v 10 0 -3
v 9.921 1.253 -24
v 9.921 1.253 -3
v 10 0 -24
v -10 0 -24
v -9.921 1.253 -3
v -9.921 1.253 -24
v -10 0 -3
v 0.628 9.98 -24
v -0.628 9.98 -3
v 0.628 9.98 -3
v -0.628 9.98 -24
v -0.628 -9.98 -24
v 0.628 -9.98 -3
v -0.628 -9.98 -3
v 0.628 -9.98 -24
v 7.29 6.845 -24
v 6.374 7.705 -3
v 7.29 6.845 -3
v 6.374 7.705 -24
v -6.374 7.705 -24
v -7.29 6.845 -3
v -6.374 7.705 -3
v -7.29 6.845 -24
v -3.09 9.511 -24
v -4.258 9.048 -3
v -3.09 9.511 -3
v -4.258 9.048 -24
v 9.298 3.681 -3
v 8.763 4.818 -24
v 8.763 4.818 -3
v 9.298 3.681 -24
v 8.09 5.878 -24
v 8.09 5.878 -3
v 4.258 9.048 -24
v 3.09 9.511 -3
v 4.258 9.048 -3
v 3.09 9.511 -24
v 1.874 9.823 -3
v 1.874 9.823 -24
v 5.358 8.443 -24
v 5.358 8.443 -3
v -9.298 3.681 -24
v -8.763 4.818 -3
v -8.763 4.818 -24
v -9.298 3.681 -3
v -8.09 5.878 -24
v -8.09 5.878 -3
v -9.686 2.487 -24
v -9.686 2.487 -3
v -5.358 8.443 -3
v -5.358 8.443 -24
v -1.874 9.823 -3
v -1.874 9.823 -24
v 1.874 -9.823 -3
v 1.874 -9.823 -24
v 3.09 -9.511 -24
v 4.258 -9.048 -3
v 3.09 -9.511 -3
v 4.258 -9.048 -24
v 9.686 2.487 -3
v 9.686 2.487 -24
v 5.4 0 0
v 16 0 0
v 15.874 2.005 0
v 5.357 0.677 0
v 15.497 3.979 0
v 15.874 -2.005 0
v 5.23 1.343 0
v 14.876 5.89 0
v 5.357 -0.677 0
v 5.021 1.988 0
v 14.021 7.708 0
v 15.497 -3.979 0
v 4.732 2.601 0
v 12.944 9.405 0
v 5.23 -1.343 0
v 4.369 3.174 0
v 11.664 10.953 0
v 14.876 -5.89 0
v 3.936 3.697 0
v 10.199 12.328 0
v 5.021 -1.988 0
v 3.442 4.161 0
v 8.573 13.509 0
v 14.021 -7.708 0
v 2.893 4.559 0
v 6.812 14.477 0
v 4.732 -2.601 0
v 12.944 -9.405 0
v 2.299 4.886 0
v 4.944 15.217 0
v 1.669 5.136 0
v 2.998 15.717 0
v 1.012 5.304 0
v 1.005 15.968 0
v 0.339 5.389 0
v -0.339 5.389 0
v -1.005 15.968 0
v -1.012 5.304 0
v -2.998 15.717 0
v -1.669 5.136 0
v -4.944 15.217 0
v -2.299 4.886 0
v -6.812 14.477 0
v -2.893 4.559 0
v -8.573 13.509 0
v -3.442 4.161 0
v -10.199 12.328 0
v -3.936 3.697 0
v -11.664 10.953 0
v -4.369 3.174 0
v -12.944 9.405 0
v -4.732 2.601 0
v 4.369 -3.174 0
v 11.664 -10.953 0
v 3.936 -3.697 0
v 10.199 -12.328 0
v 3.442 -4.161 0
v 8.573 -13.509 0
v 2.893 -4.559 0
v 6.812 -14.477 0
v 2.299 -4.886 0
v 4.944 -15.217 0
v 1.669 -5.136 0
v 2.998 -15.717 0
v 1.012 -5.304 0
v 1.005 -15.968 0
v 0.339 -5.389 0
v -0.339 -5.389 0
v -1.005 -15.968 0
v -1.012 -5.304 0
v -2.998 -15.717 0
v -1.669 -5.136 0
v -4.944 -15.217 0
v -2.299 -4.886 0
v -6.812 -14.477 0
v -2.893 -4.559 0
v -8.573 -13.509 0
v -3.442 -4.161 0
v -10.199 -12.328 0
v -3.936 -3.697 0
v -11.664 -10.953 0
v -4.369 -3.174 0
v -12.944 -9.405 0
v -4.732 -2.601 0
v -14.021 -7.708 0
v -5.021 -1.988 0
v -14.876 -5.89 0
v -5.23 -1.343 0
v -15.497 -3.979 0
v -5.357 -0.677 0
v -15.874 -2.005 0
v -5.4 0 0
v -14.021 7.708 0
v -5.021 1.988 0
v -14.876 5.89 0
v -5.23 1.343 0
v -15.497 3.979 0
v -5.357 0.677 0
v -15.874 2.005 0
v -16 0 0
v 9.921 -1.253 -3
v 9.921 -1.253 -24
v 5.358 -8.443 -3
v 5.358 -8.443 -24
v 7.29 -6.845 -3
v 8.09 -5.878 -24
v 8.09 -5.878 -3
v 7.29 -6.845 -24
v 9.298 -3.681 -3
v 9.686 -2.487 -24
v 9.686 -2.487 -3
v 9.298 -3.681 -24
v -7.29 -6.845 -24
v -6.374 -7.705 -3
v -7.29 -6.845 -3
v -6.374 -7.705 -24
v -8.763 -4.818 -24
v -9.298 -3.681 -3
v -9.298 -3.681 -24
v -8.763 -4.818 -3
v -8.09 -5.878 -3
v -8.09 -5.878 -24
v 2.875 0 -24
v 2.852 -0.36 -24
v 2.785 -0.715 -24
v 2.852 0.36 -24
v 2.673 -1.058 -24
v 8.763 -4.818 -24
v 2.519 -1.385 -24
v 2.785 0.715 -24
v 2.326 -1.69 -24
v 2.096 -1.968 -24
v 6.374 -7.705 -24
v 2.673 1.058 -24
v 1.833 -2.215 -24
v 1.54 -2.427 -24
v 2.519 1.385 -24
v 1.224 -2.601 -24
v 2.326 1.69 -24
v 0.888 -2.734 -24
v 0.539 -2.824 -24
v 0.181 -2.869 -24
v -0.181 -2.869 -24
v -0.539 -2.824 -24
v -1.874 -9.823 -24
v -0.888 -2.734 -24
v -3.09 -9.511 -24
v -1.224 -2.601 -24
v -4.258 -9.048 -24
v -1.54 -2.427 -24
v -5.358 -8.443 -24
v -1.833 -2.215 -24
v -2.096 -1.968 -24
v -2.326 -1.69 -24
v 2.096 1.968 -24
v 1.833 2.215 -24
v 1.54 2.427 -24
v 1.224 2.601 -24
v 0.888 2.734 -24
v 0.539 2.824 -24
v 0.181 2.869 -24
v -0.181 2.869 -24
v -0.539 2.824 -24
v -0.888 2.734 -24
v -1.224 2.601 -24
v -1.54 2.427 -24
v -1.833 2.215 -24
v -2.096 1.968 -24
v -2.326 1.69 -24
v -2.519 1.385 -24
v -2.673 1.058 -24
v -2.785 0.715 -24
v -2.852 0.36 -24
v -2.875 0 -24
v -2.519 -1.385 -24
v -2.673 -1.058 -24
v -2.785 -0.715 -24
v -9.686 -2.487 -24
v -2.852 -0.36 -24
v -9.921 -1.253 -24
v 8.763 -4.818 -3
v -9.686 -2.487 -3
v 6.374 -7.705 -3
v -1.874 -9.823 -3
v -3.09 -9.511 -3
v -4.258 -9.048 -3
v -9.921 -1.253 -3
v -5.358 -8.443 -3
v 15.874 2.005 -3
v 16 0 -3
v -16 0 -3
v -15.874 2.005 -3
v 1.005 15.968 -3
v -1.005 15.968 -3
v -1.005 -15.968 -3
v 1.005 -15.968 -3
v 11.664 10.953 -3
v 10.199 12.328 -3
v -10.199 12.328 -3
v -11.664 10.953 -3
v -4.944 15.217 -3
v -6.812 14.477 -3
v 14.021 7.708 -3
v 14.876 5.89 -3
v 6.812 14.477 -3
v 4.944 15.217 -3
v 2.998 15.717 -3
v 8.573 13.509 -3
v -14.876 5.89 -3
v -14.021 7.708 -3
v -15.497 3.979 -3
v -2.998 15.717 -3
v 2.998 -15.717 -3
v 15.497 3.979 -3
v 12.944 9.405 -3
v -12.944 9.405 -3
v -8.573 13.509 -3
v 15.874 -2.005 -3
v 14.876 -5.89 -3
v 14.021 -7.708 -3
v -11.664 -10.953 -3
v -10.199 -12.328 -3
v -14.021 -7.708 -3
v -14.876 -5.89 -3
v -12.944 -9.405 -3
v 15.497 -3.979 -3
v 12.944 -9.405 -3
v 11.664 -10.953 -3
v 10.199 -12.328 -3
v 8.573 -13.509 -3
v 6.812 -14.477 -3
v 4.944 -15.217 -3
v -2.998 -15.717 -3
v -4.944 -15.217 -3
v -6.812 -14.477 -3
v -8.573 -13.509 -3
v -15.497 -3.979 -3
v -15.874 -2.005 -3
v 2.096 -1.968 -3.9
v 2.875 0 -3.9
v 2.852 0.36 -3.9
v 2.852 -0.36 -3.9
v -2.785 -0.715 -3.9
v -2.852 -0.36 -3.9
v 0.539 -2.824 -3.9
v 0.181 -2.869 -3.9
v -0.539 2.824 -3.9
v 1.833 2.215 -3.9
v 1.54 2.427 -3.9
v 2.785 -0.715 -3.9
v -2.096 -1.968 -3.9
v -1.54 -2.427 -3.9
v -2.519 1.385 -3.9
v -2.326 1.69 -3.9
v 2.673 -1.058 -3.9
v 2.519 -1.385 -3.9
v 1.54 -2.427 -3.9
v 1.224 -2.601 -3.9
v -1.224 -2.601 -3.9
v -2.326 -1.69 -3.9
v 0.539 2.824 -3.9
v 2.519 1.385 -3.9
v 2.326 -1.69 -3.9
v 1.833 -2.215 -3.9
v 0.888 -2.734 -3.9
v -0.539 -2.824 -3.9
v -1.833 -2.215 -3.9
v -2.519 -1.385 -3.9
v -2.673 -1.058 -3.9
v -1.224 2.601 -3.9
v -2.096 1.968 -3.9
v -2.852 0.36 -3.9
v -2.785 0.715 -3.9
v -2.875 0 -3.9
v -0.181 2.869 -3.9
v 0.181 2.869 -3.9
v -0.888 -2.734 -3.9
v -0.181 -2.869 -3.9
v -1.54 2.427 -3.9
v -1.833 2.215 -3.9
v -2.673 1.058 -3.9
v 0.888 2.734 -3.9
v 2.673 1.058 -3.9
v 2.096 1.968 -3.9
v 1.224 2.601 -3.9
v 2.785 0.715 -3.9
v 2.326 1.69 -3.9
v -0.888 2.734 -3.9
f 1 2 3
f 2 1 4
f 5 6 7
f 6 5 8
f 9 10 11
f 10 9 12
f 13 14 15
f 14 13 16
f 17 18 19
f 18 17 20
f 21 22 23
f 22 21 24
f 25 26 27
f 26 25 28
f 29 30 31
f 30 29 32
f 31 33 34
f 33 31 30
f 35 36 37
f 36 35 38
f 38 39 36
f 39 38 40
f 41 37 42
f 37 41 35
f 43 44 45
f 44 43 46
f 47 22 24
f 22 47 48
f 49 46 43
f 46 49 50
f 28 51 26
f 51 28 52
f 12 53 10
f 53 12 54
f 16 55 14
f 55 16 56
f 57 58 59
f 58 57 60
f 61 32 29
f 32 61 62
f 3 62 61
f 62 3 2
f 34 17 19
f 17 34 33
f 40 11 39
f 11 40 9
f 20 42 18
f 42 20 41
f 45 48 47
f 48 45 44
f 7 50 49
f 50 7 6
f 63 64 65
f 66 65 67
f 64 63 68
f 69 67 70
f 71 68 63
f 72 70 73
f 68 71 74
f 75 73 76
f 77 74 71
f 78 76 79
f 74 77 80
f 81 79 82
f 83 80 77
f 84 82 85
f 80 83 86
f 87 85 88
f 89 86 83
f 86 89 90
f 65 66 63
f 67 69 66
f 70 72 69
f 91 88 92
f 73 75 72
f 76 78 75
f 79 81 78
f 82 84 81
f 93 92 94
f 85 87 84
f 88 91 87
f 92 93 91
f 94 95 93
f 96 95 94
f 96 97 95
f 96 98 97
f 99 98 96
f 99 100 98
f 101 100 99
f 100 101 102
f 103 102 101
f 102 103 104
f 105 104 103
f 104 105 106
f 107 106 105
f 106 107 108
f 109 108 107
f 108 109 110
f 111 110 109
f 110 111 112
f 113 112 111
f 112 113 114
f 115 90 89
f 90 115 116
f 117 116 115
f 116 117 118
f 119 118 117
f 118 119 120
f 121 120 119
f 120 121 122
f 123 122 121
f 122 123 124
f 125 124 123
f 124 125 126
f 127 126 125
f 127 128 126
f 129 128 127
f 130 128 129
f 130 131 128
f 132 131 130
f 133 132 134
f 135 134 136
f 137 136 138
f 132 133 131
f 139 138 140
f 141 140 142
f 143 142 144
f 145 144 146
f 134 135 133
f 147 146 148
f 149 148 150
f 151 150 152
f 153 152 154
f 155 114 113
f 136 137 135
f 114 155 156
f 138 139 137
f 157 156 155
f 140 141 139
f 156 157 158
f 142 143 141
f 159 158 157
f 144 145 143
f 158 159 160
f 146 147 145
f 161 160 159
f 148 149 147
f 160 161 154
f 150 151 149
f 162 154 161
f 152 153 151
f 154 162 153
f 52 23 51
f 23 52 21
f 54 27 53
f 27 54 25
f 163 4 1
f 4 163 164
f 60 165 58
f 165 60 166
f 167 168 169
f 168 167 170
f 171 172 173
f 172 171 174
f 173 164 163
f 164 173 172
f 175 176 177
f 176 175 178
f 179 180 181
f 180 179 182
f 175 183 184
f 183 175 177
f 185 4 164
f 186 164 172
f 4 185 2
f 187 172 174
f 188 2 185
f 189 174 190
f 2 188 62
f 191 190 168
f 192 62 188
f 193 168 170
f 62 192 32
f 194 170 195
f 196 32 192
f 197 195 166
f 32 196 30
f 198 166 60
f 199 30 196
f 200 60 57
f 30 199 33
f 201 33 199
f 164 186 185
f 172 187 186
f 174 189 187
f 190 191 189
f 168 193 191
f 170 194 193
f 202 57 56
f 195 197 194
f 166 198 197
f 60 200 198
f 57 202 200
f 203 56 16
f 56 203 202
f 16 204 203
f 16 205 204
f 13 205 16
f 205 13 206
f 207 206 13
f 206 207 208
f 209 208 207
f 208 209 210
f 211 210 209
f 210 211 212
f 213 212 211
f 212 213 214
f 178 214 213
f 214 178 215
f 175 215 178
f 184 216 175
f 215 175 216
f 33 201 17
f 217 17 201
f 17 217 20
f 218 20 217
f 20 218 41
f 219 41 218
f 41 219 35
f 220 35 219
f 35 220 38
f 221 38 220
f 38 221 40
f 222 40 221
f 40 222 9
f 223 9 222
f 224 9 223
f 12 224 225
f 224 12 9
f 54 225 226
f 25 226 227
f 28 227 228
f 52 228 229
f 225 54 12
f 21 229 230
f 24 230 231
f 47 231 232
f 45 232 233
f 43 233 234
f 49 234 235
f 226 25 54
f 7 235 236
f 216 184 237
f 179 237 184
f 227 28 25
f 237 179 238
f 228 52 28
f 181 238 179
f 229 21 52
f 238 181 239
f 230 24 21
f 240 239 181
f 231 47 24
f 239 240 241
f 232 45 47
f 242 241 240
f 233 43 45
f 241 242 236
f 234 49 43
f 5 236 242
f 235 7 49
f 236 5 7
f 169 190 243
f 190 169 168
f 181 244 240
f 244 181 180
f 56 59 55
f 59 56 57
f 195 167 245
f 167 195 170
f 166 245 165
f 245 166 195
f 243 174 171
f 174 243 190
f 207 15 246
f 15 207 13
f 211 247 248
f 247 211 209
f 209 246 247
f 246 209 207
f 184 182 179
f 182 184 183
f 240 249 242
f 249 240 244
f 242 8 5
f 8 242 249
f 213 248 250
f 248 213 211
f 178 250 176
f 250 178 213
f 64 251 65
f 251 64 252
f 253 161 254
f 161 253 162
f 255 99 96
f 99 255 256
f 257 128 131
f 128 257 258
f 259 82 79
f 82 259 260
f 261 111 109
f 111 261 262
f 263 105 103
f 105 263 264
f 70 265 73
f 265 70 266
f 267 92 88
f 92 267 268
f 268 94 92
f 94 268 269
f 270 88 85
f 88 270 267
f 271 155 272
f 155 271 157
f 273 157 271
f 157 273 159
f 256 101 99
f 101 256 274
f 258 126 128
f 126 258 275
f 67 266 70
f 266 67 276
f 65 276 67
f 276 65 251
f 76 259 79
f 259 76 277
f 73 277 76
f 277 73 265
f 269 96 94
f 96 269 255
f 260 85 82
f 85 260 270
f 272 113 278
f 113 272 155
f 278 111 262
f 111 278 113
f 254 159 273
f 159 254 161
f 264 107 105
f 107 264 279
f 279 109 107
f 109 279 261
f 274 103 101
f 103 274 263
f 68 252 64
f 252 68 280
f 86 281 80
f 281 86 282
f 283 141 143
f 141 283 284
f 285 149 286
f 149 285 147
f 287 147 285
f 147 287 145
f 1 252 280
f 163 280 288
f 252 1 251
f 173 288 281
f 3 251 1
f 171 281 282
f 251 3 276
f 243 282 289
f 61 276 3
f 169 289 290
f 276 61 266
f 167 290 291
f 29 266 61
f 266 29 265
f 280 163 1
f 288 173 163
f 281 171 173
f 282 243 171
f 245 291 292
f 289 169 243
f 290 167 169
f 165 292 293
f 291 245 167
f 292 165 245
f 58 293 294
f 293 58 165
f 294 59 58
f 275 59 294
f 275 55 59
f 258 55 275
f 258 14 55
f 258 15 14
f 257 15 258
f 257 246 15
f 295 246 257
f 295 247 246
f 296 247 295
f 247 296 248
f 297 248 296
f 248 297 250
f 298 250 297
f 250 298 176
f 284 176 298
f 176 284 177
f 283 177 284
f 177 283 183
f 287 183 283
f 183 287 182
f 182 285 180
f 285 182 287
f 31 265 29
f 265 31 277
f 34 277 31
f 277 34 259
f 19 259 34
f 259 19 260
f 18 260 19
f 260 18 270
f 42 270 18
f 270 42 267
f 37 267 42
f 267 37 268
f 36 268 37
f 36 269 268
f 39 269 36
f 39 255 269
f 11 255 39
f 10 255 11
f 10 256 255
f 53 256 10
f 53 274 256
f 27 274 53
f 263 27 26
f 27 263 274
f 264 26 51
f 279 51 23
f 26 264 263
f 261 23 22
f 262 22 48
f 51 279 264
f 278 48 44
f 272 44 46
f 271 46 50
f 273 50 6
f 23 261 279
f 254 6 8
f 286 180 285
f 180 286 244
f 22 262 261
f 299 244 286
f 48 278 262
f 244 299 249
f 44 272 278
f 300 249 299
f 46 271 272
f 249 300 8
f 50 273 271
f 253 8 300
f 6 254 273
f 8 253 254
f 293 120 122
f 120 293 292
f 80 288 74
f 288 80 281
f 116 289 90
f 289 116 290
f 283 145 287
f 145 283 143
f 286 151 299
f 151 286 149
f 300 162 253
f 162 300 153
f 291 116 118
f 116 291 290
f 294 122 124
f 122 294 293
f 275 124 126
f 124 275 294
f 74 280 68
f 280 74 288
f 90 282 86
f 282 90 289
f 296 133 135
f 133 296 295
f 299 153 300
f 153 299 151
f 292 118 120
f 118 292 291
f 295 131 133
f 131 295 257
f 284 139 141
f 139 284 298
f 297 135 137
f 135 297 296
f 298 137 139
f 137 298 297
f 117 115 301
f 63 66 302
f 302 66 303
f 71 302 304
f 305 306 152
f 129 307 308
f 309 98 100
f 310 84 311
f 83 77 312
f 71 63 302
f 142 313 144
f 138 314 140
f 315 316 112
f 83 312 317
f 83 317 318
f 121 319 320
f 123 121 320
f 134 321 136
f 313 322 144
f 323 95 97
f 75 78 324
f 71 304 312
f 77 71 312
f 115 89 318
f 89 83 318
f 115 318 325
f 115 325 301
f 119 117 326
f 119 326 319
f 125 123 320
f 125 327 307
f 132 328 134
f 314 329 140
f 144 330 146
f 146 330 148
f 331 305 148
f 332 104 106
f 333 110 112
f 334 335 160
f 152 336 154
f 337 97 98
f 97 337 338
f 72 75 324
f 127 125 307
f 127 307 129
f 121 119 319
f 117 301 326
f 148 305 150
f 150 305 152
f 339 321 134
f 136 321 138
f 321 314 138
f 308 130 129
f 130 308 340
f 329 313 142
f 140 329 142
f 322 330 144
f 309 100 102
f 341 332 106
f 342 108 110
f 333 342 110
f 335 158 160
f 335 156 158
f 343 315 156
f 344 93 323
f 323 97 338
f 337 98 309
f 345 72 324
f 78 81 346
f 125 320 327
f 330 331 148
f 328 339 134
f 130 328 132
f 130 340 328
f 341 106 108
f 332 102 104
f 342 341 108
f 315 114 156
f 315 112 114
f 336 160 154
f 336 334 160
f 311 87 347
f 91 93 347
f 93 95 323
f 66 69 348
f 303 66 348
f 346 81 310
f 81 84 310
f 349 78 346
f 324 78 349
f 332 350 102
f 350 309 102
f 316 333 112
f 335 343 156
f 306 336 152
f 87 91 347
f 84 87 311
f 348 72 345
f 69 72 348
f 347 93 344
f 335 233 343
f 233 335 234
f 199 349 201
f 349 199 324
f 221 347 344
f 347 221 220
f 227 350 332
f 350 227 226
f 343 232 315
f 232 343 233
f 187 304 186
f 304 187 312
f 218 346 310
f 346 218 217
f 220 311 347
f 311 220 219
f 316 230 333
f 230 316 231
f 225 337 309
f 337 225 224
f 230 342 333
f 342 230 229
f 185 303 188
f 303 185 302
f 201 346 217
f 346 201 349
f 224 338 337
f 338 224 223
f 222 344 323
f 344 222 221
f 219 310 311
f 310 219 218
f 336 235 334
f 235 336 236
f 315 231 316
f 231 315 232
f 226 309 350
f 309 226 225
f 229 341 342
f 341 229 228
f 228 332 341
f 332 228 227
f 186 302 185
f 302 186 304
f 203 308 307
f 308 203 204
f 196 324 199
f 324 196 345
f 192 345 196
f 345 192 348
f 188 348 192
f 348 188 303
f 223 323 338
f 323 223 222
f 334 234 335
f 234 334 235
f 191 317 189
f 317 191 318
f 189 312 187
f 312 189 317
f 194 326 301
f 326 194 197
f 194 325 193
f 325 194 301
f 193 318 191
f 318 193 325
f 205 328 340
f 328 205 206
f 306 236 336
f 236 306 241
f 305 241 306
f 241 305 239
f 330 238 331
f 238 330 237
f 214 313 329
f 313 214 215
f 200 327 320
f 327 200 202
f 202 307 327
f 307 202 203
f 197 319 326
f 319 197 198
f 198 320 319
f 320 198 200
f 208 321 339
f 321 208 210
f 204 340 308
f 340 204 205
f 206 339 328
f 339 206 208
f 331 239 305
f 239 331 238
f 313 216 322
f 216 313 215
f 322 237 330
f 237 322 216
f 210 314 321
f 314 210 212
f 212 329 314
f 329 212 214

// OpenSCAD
$fn = 50;


difference() {
	union() {
		translate(v = [0, 0, -24.0000000000]) {
			cylinder(h = 24, r = 10.0000000000);
		}
		translate(v = [0, 0, -3.0000000000]) {
			cylinder(h = 3, r = 16.0000000000);
		}
	}
	union() {
		translate(v = [0, 0, 0]) {
			rotate(a = [0, 0, 0]) {
				difference() {
					union() {
						#translate(v = [0, 0, -24.0000000000]) {
							cylinder(h = 24, r = 2.6000000000);
						}
						#translate(v = [0, 0, -3.9000000000]) {
							cylinder(h = 3.9000000000, r = 10.0000000000, r1 = 2.8750000000, r2 = 5.4000000000);
						}
						#translate(v = [0, 0, -24.0000000000]) {
							cylinder(h = 24, r = 2.8750000000);
						}
						#translate(v = [0, 0, -24.0000000000]) {
							cylinder(h = 24, r = 2.6000000000);
						}
					}
					union();
				}
			}
		}
	}
}
